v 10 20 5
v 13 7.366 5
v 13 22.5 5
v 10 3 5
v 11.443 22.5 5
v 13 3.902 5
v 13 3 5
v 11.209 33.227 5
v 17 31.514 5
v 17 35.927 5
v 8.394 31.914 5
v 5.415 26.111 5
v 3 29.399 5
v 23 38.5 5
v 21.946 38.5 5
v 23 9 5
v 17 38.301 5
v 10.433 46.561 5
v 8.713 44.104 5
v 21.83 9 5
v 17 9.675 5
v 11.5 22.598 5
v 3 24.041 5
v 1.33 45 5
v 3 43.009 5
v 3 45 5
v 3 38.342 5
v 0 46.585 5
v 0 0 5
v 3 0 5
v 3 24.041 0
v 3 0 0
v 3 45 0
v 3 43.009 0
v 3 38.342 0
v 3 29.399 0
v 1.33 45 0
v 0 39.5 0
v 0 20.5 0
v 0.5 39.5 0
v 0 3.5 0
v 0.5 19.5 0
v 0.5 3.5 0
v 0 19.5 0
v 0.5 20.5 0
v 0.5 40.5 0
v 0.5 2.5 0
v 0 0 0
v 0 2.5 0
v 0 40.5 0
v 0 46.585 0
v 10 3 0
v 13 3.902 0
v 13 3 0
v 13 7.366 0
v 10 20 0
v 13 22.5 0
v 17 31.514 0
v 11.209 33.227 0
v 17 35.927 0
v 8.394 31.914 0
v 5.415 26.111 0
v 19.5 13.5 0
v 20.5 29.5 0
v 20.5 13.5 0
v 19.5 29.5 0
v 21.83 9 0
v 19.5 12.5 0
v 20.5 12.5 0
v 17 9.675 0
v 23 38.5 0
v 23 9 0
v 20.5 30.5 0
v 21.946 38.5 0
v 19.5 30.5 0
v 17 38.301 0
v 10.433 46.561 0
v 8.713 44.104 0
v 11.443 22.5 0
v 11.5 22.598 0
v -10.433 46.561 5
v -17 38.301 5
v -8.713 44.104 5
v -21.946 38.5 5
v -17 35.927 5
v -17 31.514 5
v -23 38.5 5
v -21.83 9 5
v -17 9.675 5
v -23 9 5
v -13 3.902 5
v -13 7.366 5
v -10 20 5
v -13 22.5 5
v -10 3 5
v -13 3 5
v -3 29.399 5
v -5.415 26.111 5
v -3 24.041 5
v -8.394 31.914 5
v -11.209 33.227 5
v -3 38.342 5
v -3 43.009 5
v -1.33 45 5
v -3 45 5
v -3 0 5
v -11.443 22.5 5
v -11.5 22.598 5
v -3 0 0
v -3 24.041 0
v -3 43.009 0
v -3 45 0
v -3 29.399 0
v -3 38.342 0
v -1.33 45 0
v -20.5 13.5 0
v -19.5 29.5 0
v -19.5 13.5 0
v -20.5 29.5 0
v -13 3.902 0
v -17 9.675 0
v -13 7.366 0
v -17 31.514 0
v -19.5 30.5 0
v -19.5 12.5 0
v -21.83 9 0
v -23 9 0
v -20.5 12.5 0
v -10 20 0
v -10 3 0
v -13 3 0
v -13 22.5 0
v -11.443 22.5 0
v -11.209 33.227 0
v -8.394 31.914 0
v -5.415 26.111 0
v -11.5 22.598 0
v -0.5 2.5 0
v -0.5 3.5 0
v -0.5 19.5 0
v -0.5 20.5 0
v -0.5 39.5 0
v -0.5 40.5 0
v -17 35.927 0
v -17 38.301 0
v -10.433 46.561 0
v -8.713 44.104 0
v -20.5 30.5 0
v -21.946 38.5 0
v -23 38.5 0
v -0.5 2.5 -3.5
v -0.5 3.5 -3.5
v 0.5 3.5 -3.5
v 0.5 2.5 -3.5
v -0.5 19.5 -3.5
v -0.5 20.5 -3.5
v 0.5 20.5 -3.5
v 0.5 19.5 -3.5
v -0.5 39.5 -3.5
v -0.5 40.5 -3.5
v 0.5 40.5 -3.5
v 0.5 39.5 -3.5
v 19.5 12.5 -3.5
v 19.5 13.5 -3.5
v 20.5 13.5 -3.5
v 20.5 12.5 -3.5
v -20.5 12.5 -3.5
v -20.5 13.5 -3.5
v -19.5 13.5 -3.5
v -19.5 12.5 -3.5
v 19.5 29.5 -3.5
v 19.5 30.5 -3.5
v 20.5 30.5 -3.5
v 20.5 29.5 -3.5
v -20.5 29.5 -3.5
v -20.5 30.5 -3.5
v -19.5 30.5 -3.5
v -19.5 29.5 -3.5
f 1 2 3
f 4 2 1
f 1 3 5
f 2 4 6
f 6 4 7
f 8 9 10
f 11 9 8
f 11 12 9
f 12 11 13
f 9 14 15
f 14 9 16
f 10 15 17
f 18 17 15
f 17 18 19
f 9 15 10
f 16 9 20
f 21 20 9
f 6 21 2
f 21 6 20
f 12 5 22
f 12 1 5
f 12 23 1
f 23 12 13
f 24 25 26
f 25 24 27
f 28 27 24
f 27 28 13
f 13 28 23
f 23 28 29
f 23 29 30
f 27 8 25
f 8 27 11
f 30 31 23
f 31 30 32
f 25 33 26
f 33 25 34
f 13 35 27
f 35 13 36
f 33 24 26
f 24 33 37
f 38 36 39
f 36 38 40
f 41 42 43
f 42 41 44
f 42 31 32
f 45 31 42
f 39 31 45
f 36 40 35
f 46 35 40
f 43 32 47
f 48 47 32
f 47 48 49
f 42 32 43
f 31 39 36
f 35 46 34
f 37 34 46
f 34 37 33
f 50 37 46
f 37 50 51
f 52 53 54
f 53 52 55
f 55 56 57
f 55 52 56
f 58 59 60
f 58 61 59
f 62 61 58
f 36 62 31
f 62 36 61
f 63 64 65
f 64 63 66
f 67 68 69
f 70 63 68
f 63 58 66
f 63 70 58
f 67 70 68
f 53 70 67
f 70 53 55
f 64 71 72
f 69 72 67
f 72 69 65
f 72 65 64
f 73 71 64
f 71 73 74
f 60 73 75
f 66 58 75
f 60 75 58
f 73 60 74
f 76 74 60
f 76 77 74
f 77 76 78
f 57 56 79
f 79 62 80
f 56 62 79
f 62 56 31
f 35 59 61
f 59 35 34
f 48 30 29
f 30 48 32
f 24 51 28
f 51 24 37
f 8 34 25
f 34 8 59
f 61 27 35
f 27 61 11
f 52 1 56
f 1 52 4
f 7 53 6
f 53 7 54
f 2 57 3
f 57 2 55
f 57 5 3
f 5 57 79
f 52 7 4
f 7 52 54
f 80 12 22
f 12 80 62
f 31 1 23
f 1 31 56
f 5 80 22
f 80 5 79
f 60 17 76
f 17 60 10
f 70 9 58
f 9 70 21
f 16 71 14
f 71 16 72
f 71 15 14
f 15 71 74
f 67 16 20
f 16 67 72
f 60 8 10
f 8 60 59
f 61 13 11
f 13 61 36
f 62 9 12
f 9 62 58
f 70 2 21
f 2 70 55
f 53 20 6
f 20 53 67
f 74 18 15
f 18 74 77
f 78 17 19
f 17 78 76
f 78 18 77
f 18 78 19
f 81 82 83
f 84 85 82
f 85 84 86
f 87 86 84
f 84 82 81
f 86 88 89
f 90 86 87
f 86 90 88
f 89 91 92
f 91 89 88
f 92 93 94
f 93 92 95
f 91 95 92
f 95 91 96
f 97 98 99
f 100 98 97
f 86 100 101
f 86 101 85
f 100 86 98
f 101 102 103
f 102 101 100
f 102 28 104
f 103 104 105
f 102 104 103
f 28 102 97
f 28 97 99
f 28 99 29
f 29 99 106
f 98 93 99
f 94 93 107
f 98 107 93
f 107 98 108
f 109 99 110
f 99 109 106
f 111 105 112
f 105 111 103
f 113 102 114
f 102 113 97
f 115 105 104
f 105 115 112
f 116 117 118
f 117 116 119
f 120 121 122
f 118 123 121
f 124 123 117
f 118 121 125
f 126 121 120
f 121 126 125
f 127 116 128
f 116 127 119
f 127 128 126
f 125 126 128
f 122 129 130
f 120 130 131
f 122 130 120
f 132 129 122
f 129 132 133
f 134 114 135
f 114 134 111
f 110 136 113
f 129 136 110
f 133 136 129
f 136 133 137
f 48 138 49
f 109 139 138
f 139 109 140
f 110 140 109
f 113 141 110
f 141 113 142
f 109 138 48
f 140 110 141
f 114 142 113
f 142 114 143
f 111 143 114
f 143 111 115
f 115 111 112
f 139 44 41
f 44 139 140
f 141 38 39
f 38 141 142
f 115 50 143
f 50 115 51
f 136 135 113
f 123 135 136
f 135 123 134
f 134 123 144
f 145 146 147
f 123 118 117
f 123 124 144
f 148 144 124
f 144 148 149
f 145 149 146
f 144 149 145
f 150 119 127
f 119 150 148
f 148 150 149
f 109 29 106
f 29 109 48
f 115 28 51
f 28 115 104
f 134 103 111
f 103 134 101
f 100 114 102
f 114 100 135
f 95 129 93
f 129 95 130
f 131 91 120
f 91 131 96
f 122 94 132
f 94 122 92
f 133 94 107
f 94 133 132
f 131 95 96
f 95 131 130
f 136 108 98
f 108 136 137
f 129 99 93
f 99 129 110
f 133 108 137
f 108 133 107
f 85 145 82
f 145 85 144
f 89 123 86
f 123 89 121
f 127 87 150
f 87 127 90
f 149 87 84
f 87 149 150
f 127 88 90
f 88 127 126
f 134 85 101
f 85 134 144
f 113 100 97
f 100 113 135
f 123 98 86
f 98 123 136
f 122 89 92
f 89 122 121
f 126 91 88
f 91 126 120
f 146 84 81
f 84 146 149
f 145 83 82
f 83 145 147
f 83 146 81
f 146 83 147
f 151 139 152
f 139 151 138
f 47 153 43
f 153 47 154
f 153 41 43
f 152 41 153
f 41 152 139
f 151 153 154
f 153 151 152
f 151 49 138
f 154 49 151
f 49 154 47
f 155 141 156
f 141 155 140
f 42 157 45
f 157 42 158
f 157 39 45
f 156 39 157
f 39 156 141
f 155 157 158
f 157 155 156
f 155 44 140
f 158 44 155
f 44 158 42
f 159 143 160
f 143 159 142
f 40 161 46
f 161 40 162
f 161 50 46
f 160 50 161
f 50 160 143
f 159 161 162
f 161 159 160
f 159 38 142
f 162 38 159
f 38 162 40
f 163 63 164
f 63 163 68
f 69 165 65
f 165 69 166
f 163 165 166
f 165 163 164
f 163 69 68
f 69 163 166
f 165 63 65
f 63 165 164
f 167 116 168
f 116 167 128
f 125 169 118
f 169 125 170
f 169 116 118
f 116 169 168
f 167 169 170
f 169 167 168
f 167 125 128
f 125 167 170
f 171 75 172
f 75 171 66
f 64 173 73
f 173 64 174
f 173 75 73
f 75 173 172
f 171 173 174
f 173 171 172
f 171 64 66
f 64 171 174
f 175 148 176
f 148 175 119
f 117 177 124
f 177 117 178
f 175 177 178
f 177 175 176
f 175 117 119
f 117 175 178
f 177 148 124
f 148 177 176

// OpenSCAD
module arrow() {
    union() {
        cube([3,45,5]);
        translate([10,30,0]) rotate(40) cube([3,20,5]);
    }
}

module turn_line() {
    union() {
        translate([10,3,0])cube([3,19.5,5]);
        translate([10,20,0]) rotate(60) cube([3,10,5]);
    }
}

module black_lines() {
    union() {
        translate([17,9,0]) cube([6,29.5,5]);
        translate([0,28,0]) rotate(-65) cube([4,19,5]);
        translate([11.5,6.5,0]) rotate(-60) cube([3,11.5,5]);
        translate([21,35.5,0]) rotate(55) cube([3,15,5]);
    }
}

module half_shape() {
    difference() {
        union() {
            arrow();
            turn_line();
            black_lines();
        };
        translate([-5,-10,0]) cube([5,100,10]);
    }
}

module half_shape_mirror() {
    difference() {
        mirror([0,0,0])
        union() {
            arrow();
            turn_line();
            black_lines();
        };
        mirror([0,0,0]) translate([-5,-10,0]) cube([5,100,10]);
    }
}

union() {
half_shape();

mirror([10,0,0]) half_shape();

translate([0,3,-1]) cube([1,1,5], center=true);
translate([0,20,-1]) cube([1,1,5], center=true);
translate([0,40,-1]) cube([1,1,5], center=true);
translate([20,13,-1]) cube([1,1,5], center=true);
translate([-20,13,-1]) cube([1,1,5], center=true);
translate([20,30,-1]) cube([1,1,5], center=true);
translate([-20,30,-1]) cube([1,1,5], center=true);

}
